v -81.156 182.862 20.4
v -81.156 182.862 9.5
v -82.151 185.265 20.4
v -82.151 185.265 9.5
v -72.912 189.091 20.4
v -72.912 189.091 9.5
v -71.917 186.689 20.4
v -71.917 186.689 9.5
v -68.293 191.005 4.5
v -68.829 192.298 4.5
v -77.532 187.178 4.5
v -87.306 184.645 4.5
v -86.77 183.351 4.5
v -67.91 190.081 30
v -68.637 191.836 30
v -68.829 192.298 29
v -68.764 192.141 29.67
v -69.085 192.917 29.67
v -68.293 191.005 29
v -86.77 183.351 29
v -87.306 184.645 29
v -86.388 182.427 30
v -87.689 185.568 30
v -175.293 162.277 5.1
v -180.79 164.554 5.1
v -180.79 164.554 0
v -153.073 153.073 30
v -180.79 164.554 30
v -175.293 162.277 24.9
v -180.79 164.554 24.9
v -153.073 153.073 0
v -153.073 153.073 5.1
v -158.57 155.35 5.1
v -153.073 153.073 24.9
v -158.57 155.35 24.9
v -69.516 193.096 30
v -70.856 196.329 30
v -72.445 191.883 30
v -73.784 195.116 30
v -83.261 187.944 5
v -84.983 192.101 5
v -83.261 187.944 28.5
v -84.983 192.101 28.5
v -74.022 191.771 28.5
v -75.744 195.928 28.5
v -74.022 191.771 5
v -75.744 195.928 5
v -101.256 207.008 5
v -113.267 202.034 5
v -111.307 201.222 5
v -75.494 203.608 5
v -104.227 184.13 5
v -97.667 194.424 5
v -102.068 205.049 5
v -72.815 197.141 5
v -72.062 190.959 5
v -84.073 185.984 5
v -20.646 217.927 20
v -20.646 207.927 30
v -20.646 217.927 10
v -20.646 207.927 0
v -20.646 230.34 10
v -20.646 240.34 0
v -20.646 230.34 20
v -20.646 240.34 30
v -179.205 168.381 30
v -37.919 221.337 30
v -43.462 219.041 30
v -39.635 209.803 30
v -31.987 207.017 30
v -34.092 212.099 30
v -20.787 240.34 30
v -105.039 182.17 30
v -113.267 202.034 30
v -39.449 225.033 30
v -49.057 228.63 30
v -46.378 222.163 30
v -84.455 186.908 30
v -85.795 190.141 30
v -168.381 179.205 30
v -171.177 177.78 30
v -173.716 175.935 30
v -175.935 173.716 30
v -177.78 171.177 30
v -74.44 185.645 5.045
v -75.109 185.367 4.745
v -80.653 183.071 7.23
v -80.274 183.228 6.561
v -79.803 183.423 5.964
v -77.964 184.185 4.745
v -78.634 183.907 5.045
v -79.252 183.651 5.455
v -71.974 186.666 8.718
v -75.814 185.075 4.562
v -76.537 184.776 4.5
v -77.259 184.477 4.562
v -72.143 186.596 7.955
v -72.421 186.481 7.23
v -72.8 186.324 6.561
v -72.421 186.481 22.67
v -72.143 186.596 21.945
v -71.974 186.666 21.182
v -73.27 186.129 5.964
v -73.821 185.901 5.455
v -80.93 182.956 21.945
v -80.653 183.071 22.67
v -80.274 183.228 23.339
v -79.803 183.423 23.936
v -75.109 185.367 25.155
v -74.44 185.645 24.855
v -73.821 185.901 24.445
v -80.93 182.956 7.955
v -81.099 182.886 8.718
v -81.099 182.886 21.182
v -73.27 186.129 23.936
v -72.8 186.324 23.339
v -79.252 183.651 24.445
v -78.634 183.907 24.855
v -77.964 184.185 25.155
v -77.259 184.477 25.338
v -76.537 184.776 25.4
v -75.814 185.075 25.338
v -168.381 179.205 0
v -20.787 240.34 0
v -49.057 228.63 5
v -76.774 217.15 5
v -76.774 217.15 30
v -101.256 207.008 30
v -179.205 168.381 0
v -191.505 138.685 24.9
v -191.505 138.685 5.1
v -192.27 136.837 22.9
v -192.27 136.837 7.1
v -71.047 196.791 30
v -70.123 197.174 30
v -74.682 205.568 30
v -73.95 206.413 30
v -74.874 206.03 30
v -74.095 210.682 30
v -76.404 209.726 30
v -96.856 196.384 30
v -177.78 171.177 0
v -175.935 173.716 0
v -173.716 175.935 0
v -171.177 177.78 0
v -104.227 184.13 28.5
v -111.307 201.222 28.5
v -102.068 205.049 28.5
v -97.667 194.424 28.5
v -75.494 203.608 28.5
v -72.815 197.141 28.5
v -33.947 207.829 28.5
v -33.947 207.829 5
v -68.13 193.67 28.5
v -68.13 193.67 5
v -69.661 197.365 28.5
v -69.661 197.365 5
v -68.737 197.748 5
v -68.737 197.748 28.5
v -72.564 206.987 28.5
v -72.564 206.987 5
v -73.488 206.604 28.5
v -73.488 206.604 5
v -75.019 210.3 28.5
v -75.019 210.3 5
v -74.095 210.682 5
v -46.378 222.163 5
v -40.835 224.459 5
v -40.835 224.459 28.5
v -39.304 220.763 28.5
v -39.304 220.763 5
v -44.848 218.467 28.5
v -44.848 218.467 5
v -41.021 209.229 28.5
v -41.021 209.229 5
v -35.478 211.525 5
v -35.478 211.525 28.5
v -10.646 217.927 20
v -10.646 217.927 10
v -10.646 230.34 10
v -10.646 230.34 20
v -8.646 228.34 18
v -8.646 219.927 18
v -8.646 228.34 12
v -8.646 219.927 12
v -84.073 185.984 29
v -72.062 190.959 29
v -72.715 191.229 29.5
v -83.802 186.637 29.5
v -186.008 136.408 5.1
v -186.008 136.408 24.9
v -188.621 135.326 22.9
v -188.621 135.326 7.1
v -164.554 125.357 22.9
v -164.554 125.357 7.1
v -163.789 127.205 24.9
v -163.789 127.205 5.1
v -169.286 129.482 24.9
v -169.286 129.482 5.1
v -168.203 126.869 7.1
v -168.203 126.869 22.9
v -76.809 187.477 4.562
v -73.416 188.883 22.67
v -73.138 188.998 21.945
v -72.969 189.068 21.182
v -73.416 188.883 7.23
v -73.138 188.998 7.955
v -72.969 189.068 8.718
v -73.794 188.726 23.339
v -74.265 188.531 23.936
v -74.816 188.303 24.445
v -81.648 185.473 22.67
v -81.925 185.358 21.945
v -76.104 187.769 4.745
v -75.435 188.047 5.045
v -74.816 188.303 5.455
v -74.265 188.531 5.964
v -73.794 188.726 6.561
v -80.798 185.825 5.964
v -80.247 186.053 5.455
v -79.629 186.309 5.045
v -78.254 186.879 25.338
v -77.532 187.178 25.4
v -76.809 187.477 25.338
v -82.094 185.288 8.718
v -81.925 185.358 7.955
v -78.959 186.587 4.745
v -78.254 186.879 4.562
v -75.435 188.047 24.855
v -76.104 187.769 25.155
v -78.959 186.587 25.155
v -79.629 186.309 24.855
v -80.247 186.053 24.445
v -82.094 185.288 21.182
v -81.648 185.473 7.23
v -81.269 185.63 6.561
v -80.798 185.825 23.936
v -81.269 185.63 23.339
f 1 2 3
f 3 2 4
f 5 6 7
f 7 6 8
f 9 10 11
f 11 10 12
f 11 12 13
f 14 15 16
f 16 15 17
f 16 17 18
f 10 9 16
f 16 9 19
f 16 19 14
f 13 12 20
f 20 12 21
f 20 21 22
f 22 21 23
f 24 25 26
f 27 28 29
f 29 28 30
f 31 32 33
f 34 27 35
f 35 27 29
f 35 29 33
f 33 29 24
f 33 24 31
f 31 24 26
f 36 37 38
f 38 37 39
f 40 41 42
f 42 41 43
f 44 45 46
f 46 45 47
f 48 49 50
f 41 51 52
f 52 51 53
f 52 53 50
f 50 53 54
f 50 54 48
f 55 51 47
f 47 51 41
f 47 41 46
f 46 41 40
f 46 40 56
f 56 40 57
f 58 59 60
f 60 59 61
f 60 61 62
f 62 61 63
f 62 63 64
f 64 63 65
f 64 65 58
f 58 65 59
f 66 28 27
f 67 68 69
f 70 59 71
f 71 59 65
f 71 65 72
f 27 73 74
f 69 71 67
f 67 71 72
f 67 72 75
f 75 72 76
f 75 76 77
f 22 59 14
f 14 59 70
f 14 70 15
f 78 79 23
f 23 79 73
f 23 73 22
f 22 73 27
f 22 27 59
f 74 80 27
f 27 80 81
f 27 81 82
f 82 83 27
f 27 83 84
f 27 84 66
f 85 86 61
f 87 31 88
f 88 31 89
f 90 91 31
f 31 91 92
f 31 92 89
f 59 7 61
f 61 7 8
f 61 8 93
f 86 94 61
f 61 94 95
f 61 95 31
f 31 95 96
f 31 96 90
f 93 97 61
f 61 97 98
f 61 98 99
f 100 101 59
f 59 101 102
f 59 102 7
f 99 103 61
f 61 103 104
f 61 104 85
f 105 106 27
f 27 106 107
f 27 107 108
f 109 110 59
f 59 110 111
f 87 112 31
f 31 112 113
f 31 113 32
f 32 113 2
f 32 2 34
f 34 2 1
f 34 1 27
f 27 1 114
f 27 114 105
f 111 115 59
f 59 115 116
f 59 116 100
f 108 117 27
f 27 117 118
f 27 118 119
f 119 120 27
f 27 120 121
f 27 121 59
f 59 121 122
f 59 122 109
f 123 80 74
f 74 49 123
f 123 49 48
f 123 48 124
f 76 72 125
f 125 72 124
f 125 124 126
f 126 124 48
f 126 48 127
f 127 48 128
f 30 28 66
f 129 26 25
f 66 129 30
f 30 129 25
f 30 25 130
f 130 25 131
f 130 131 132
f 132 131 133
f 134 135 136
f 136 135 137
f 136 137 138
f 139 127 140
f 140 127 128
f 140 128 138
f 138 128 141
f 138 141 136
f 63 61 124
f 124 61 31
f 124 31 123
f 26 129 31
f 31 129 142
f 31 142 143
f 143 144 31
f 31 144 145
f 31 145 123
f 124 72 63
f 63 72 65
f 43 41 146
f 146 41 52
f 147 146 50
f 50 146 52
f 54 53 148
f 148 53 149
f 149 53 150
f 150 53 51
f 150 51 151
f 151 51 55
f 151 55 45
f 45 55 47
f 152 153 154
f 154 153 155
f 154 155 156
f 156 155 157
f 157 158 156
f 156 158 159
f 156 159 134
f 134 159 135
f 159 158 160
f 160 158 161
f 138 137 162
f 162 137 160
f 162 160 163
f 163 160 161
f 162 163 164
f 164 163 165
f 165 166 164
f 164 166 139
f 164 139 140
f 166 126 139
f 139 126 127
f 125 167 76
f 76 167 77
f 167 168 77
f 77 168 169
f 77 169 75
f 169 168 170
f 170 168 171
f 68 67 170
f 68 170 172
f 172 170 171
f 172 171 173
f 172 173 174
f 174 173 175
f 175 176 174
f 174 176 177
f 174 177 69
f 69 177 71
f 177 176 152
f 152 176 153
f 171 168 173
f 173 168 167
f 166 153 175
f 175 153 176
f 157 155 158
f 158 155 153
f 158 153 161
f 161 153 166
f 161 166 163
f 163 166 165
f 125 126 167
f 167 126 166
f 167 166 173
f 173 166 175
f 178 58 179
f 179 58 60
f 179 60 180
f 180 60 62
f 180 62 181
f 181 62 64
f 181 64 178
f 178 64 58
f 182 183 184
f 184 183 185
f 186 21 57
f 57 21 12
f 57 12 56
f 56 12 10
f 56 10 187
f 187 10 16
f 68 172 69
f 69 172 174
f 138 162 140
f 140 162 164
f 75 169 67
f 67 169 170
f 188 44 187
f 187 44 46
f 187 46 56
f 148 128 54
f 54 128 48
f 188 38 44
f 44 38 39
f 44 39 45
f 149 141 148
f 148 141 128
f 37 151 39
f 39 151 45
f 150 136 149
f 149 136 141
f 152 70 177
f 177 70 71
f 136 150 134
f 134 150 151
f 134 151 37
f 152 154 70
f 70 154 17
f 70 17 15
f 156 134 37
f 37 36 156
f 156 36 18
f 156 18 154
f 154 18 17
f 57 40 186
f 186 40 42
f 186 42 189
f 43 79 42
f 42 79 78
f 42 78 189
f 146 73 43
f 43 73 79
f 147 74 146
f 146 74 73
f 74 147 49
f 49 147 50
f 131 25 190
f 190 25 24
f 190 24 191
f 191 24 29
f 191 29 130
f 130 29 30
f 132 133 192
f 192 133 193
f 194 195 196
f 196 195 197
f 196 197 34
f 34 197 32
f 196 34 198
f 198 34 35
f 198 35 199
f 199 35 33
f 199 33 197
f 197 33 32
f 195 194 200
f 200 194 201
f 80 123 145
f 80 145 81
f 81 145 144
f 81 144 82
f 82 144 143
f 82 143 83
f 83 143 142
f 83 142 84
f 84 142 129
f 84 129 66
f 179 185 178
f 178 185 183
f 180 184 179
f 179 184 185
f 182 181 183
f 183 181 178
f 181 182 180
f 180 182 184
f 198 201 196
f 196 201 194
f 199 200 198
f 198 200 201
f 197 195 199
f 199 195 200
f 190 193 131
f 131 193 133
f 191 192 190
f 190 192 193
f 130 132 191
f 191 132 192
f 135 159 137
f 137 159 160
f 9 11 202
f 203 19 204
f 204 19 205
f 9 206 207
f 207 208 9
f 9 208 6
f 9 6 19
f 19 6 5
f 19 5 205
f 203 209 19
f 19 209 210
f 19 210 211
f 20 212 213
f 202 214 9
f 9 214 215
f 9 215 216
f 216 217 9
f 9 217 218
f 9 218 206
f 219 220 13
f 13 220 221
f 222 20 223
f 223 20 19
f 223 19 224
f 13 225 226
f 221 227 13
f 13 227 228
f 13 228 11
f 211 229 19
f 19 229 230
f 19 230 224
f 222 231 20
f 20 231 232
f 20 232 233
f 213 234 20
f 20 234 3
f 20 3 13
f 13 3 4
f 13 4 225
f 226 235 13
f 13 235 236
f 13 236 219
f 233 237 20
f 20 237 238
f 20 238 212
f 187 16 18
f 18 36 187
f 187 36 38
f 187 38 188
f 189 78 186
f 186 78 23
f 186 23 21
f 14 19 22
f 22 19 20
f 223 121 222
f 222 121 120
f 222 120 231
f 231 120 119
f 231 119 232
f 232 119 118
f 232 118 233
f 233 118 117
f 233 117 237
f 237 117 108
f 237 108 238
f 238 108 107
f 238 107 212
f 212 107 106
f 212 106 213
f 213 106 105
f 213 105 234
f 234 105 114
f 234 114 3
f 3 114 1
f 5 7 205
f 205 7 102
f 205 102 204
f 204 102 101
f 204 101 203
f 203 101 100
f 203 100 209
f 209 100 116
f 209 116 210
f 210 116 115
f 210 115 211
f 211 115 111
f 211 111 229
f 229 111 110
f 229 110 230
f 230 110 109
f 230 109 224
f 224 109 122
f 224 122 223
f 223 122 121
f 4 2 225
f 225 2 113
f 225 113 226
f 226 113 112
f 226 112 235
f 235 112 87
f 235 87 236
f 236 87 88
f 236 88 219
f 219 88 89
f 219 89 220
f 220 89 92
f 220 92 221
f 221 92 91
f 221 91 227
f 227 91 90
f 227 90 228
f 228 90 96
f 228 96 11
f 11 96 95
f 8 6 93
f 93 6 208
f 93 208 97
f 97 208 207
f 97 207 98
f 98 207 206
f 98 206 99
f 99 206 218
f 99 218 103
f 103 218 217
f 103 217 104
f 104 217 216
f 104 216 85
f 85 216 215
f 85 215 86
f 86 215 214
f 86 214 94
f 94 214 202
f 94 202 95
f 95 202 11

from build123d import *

# Parameters (mm, degrees)
BOSS_EXTRUDE1_DEPTH = 30
SKETCH4_W           = 30
SKETCH4_H           = 11.480502971
BOSS_EXTRUDE2_DEPTH = 50
CUT_EXTRUDE1_DEPTH  = 5
CUT_EXTRUDE3_DEPTH  = 6.480502971
FILLET1_R           = 10
CHAMFER3_SIZE       = 22.5
CHAMFER3_SIZE2      = 8.610377228
CHAMFER1_SIZE       = 15
CHAMFER1_SIZE2      = 20.645728807
CHAMFER2_SIZE2      = 20.645728807
CHAMFER2_SIZE       = 15
CUT_EXTRUDE4_DEPTH  = 25
CUT_EXTRUDE5_DEPTH  = 25
SKETCH9_W           = 20.645728807
SKETCH9_H           = 30
CUT_EXTRUDE6_DEPTH  = 40
SKETCH10_W          = 10
SKETCH10_H          = 12.413129657
BOSS_EXTRUDE3_DEPTH = 12
SKETCH11_W          = 20
SKETCH11_H          = 25.5
CUT_EXTRUDE7_DEPTH  = 4
SKETCH12_W          = 30
SKETCH12_H          = 31
CUT_EXTRUDE8_DEPTH  = 2
CHAMFER4_SIZE       = 1.5
CUT_EXTRUDE9_DEPTH  = 30
SKETCH14_W          = 5.95
SKETCH14_H          = 19.8
BOSS_EXTRUDE4_DEPTH = 30
FILLET2_R           = 20
CHAMFER5_SIZE       = 2
CHAMFER6_SIZE       = 1.5
BOSS_EXTRUDE5_DEPTH = 25.5
SKETCH16_W          = 4.6
SKETCH16_H          = 2.6
BOSS_EXTRUDE6_DEPTH = 10
CHAMFER7_SIZE       = 1
FILLET3_R           = 5


# Some blends are built 0.0001 mm under size
with BuildPart() as part:
    # Sketch1 → Boss-Extrude1 (new body)
    with BuildSketch(Plane.XY):
        Polygon((0, 216.478440058), (-153.073372946, 153.073372946), (-216.478440058, 0), (-244.194826034, 0), (-244.194826034, 11.480502971), (-176.034378888, 176.034378888), (0, 248.950206067), align=None)
    extrude(amount=BOSS_EXTRUDE1_DEPTH)

    # Sketch4 → Boss-Extrude2 (add)
    with BuildSketch(Plane.ZY.offset(244.194826034)):
        with Locations((15, 5.740251485)):
            Rectangle(SKETCH4_W, SKETCH4_H)
    extrude(amount=BOSS_EXTRUDE2_DEPTH)

    # Sketch5 → Cut-Extrude1 (cut)
    with BuildSketch(Plane(origin=(0, 11.480502971, 0), x_dir=(1, 0, 0), z_dir=(0, 1, 0))):
        with BuildLine():
            Line((-281.694826034, -6), (-256.694826034, -6))
            ThreePointArc((-256.694826034, -6), (-247.694826034, -15), (-256.694826034, -24))
            Line((-256.694826034, -24), (-281.694826034, -24))
            ThreePointArc((-281.694826034, -24), (-290.694826034, -15), (-281.694826034, -6))
        make_face()
    extrude(amount=-CUT_EXTRUDE1_DEPTH, mode=Mode.SUBTRACT)

    # Sketch7 → Cut-Extrude3 (cut)
    with BuildSketch(Plane(origin=(0, 6.480502971, 0), x_dir=(1, 0, 0), z_dir=(0, 1, 0))):
        with BuildLine():
            Line((-256.694826034, -11.5), (-281.694826034, -11.5))
            ThreePointArc((-281.694826034, -11.5), (-285.194826034, -15), (-281.694826034, -18.5))
            Line((-281.694826034, -18.5), (-256.694826034, -18.5))
            ThreePointArc((-256.694826034, -18.5), (-253.194826034, -15), (-256.694826034, -11.5))
        make_face()
    extrude(amount=-CUT_EXTRUDE3_DEPTH, mode=Mode.SUBTRACT)

    # Fillet1
    fillet1_edges = [part.edges().sort_by_distance(p)[0] for p in [
        (-294.194826034, 5.740251485, 0),
        (-294.194826034, 5.740251485, 30),
    ]]
    fillet(fillet1_edges, radius=FILLET1_R)

    # Chamfer3
    chamfer3_edges = [part.edges().sort_by_distance(p)[0] for p in [
        (0, 248.950206067, 15),
    ]]
    chamfer3_side = [part.faces().sort_by_distance(p)[0] for p in [
        (-88.017189444, 212.492292478, 15),
    ]]
    chamfer(chamfer3_edges, length=CHAMFER3_SIZE, length2=CHAMFER3_SIZE2, reference=chamfer3_side[0])

    # Chamfer1
    chamfer1_edges = [part.edges().sort_by_distance(p)[0] for p in [
        (0, 228.409134449, 0),
    ]]
    chamfer1_side = [part.faces().sort_by_distance(p)[0] for p in [
        (0, 228.409134449, 15),
    ]]
    chamfer(chamfer1_edges, length=CHAMFER1_SIZE, length2=CHAMFER1_SIZE2, reference=chamfer1_side[0])

    # Chamfer2
    chamfer2_edges = [part.edges().sort_by_distance(p)[0] for p in [
        (0, 228.409134449, 30),
    ]]
    chamfer2_side = [part.faces().sort_by_distance(p)[0] for p in [
        (0, 228.409134449, 29.7),
    ]]
    chamfer(chamfer2_edges, length=CHAMFER2_SIZE - 0.0001, length2=CHAMFER2_SIZE2 - 0.0001, reference=chamfer2_side[0])  # a hair under: the kernel refuses the full size

    # Sketch3 → Cut-Extrude4 (cut)
    with BuildSketch(Plane.XY.offset(30)):
        Polygon((-186.689323664, 71.91728881), (-182.86248934, 81.156084136), (-192.101284666, 84.982918459), (-184.129988769, 104.227329121), (-202.60757942, 111.880997769), (-206.434413743, 102.642202444), (-194.423979821, 97.667317823), (-203.608382197, 75.494209043), (-197.14122547, 72.815425016), (-195.928118989, 75.744123134), align=None)
        Polygon((-81.156084136, 182.86248934), (-71.91728881, 186.689323664), (-75.744123134, 195.928118989), (-72.815425016, 197.14122547), (-75.494209043, 203.608382197), (-97.667317823, 194.423979821), (-102.642202444, 206.434413743), (-111.880997769, 202.60757942), (-106.906113148, 190.597145497), (-104.227329121, 184.129988769), (-84.982918459, 192.101284666), align=None)
    extrude(amount=-CUT_EXTRUDE4_DEPTH, mode=Mode.SUBTRACT)

    # Sketch8 → Cut-Extrude5 (cut)
    with BuildSketch(Plane.XY.offset(30)):
        Polygon((-68.130369257, 193.669878104), (-69.661102986, 197.365396234), (-68.737223454, 197.748079667), (-72.564057777, 206.986874992), (-73.48793731, 206.604191559), (-75.018671039, 210.29970969), (-74.094791507, 210.682393122), (-76.773575533, 217.149549849), (-49.057189558, 228.63005282), (-46.378405531, 222.162896093), (-40.835128336, 224.458996687), (-39.304394607, 220.763478557), (-44.847671802, 218.467377963), (-41.020837478, 209.228582638), (-35.477560283, 211.524683232), (-33.946826554, 207.829165102), align=None)
    extrude(amount=-CUT_EXTRUDE5_DEPTH, mode=Mode.SUBTRACT)

    # Sketch9 → Cut-Extrude6 (cut)
    with BuildSketch(Plane(origin=(0, 240.339828839, 0), x_dir=(1, 0, 0), z_dir=(0, 1, 0))):
        with Locations((-10.322864404, -15)):
            Rectangle(SKETCH9_W, SKETCH9_H)
    extrude(amount=-CUT_EXTRUDE6_DEPTH, mode=Mode.SUBTRACT)


with BuildPart() as cut_extrude6_kept_piece:
    # of the separate pieces the step leaves, the one the design keeps (cut_extrude6_pieces_kept)
    add(part.part.solids().sort_by_distance((-20.787289482, 240.339828839, 30))[0])

    # Sketch10 → Boss-Extrude3 (add)
    with BuildSketch(Plane(origin=(-20.645728807, 0, 0), x_dir=(0, 0, -1), z_dir=(1, 0, 0))):
        with Locations((-15, 224.13326401)):
            Rectangle(SKETCH10_W, SKETCH10_H)
    extrude(amount=BOSS_EXTRUDE3_DEPTH)

    # Sketch11 → Cut-Extrude7 (cut)
    with BuildSketch(Plane(origin=(-76.536686473, 184.775906502, 0), x_dir=(0.9238795325112865, 0.38268343236509045, 0), z_dir=(0.38268343236509045, -0.9238795325112865, 0))):
        with Locations((0, 17.25)):
            Rectangle(SKETCH11_W, SKETCH11_H)
    extrude(amount=-CUT_EXTRUDE7_DEPTH, mode=Mode.SUBTRACT)

    # Sketch12 → Cut-Extrude8 (cut)
    with BuildSketch(Plane(origin=(-184.775906502, 76.536686473, 0), x_dir=(0, 0, -1), z_dir=(0.9238795325112872, -0.38268343236508917, 0))):
        with Locations((-15, 0.5)):
            Rectangle(SKETCH12_W, SKETCH12_H)
    extrude(amount=-CUT_EXTRUDE8_DEPTH, mode=Mode.SUBTRACT)

    # Chamfer4
    # the kernel refuses this chamfer: 1.5 mm, written as the material it takes off along each edge
    with BuildSketch(Plane(origin=(-111.880997769, 202.60757942, 33.857524482), x_dir=(-0.9340524457212702, -0.35713586860201213, 0), z_dir=(0, 0, -1)), Plane(origin=(-206.434413743, 102.642202444, 33.857524482), x_dir=(-0.4079416238599721, -0.9130080128468145, 0), z_dir=(0, 0, -1)), Plane(origin=(-82.686817865, 186.55800747, 5), x_dir=(-0.9130080128468199, -0.40794162385996025, 0), z_dir=(0, 0, 1)), Plane(origin=(-184.710248405, 81.921451, 33.857524482), x_dir=(0.40794162385996363, 0.9130080128468183, 0), z_dir=(0, 0, -1)), Plane(origin=(-188.537082729, 72.682655675, 5), x_dir=(-0.3571358686019868, -0.9340524457212799, 0), z_dir=(0, 0, 1))) as chamfer4_piece_1:
        Polygon((CHAMFER4_SIZE * 0.999621916911, -CHAMFER4_SIZE * 0.0274958766106), (-CHAMFER4_SIZE * 0.0274958766106, -CHAMFER4_SIZE * 0.999621916911), (0, 0), align=None)
    extrude(amount=28.857524482, mode=Mode.SUBTRACT)
    with BuildSketch(Plane(origin=(-102.642202444, 206.434413743, 33.857524482), x_dir=(0.913008012846816, 0.4079416238599687, 0), z_dir=(0, 0, -1)), Plane(origin=(-202.60757942, 111.880997769, 33.857524482), x_dir=(0.357135868602009, 0.9340524457212713, 0), z_dir=(0, 0, -1)), Plane(origin=(-73.44802254, 190.384841794, 33.857524482), x_dir=(-0.40794162385996025, 0.9130080128468199, 0), z_dir=(0, 0, -1))) as chamfer4_piece_2:
        Polygon((CHAMFER4_SIZE * 0.999621916911, CHAMFER4_SIZE * 0.0274958766106), (-CHAMFER4_SIZE * 0.0274958766106, CHAMFER4_SIZE * 0.999621916911), (0, 0), align=None)
    extrude(amount=28.857524482, mode=Mode.SUBTRACT)
    with BuildSketch(Plane(origin=(-86.459129168, 195.665172581, 30), x_dir=(-0.9235302292840447, -0.38253874623098655, 0.027495876610586726), z_dir=(0.3826834323650907, -0.9238795325112864, 0)), Plane(origin=(-71.971811831, 186.820953879, 30), x_dir=(0.9235302292840449, 0.38253874623098627, 0.027495876610586726), z_dir=(-0.3826834323650905, 0.9238795325112865, 0))) as chamfer4_piece_3:
        Polygon((CHAMFER4_SIZE * 0.999621916911, CHAMFER4_SIZE * 0.0274958766106), (-CHAMFER4_SIZE * 0.0274958766106, CHAMFER4_SIZE * 0.999621916911), (0, 0), align=None)
    extrude(amount=13.715048964, mode=Mode.SUBTRACT)
    with BuildSketch(Plane(origin=(-79.308011049, 194.45190828, 30), x_dir=(0.3825387462309865, -0.9235302292840447, 0.027495876610586726), z_dir=(0.9238795325112864, 0.3826834323650907, 0)), Plane(origin=(-197.14122547, 72.815425016, 30), x_dir=(0.9235302292840416, -0.3825387462309942, 0.02749587661058663), z_dir=(0.38268343236509833, 0.9238795325112832, 0))) as chamfer4_piece_4:
        Polygon((CHAMFER4_SIZE * 0.999621916911, CHAMFER4_SIZE * 0.0274958766106), (-CHAMFER4_SIZE * 0.0274958766106, CHAMFER4_SIZE * 0.999621916911), (0, 0), align=None)
    extrude(amount=7.027524482, mode=Mode.SUBTRACT)
    with BuildSketch(Plane(origin=(-72.815425016, 197.14122547, 30), x_dir=(0.923530229284045, 0.38253874623098577, 0.027495876610586726), z_dir=(-0.3826834323650899, 0.9238795325112867, 0)), Plane(origin=(-203.608382197, 75.494209043, 30), x_dir=(-0.3825387462309937, -0.9235302292840417, 0.027495876610586955), z_dir=(0.9238795325112835, -0.382683432365098, 0))) as chamfer4_piece_5:
        Polygon((CHAMFER4_SIZE * 0.999621916911, CHAMFER4_SIZE * 0.0274958766106), (-CHAMFER4_SIZE * 0.0274958766106, CHAMFER4_SIZE * 0.999621916911), (0, 0), align=None)
    extrude(amount=7, mode=Mode.SUBTRACT)
    with BuildSketch(Plane(origin=(-75.494209043, 203.608382197, 30), x_dir=(-0.38253874623098766, 0.9235302292840444, 0.027495876610586726), z_dir=(-0.923879532511286, -0.3826834323650918, 0)), Plane(origin=(-192.947769111, 101.231205738, 30), x_dir=(-0.9235302292840468, 0.38253874623098166, 0.027495876610586726), z_dir=(-0.3826834323650858, -0.9238795325112884, 0))) as chamfer4_piece_6:
        Polygon((CHAMFER4_SIZE * 0.999621916911, CHAMFER4_SIZE * 0.0274958766106), (-CHAMFER4_SIZE * 0.0274958766106, CHAMFER4_SIZE * 0.999621916911), (0, 0), align=None)
    extrude(amount=27.857524482, mode=Mode.SUBTRACT)
    with BuildSketch(Plane(origin=(-96.191107114, 190.860091906, 30), x_dir=(0.9235302292840402, 0.3825387462309975, 0.027495876610586768), z_dir=(-0.3826834323651017, 0.9238795325112819, 0))) as chamfer4_piece_7:
        Polygon((CHAMFER4_SIZE * 0.999621916911, CHAMFER4_SIZE * 0.0274958766106), (-CHAMFER4_SIZE * 0.0274958766106, CHAMFER4_SIZE * 0.999621916911), (0, 0), align=None)
    extrude(amount=20.715048964, mode=Mode.SUBTRACT)
    with BuildSketch(Plane(origin=(-104.227329121, 184.129988769, 30), x_dir=(0.02540287762893928, 0.010522216437210534, -0.9996219169112979), z_dir=(-0.38268343236508334, 0.9238795325112895, 0)), Plane(origin=(-184.129988769, 104.227329121, 30), x_dir=(0.38253874623098305, 0.9235302292840462, 0.027495876610586726), z_dir=(-0.9238795325112878, 0.3826834323650872, 0))) as chamfer4_piece_8:
        Polygon((CHAMFER4_SIZE * 0.999621916911, CHAMFER4_SIZE * 0.0274958766106), (-CHAMFER4_SIZE * 0.0274958766105, CHAMFER4_SIZE * 0.999621916911), (0, 0), align=None)
    extrude(amount=23.857524482, mode=Mode.SUBTRACT)
    with BuildSketch(Plane(origin=(-104.227329121, 184.129988769, 30), x_dir=(0.38253874623098766, -0.9235302292840444, 0.027495876610586726), z_dir=(0.923879532511286, 0.3826834323650918, 0)), Plane(origin=(-193.577495375, 81.419030544, 30), x_dir=(0.9235302292840456, -0.38253874623098455, 0.027495876610586726), z_dir=(0.3826834323650887, 0.9238795325112873, 0))) as chamfer4_piece_9:
        Polygon((CHAMFER4_SIZE * 0.999621916911, CHAMFER4_SIZE * 0.0274958766106), (-CHAMFER4_SIZE * 0.0274958766106, CHAMFER4_SIZE * 0.999621916911), (0, 0), align=None)
    extrude(amount=24.687524482, mode=Mode.SUBTRACT)
    with BuildSketch(Plane(origin=(-209.998301658, 104.118413153, 30), x_dir=(0.010522216437226423, 0.025402877628977135, -0.9996219169112968), z_dir=(0.9238795325112867, -0.38268343236508984, 0))) as chamfer4_piece_10:
        Polygon((CHAMFER4_SIZE * 0.999621916911, -CHAMFER4_SIZE * 0.0274958766106), (-CHAMFER4_SIZE * 0.0274958766106, -CHAMFER4_SIZE * 0.999621916911), (0, 0), align=None)
    extrude(amount=20.715048964, mode=Mode.SUBTRACT)
    with BuildSketch(Plane(origin=(-199.492006904, 77.220333843, 30), x_dir=(-0.38253874623098383, -0.9235302292840458, 0.027495876610586722), z_dir=(0.9238795325112875, -0.38268343236508806, 0)), Plane(origin=(-181.14636049, 80.445240291, 30), x_dir=(0.38253874623098577, 0.923530229284045, 0.027495876610586726), z_dir=(-0.9238795325112867, 0.38268343236508995, 0))) as chamfer4_piece_11:
        Polygon((CHAMFER4_SIZE * 0.999621916911, CHAMFER4_SIZE * 0.0274958766106), (-CHAMFER4_SIZE * 0.0274958766106, CHAMFER4_SIZE * 0.999621916911), (0, 0), align=None)
    extrude(amount=15.715048964, mode=Mode.SUBTRACT)
    with BuildSketch(Plane(origin=(-33.946826554, 207.829165102, 30), x_dir=(0.38253874623098433, -0.9235302292840456, 0.027495876610586674), z_dir=(-0.9238795325112873, -0.38268343236508856, 0))) as chamfer4_piece_12:
        Polygon((CHAMFER4_SIZE * 0.999621916911, -CHAMFER4_SIZE * 0.0274958766106), (-CHAMFER4_SIZE * 0.0274958766106, -CHAMFER4_SIZE * 0.999621916911), (0, 0), align=None)
    extrude(amount=37, mode=Mode.SUBTRACT)
    with BuildSketch(Plane(origin=(-35.477560283, 211.524683232, 30), x_dir=(0.9235302292840445, 0.38253874623098716, 0.02749587661058684), z_dir=(0.3826834323650914, -0.9238795325112861, 0)), Plane(origin=(-40.835128336, 224.458996687, 30), x_dir=(0.923530229284045, 0.3825387462309857, 0.027495876610586608), z_dir=(0.3826834323650899, -0.9238795325112867, 0)), Plane(origin=(-73.48793731, 206.604191559, 30), x_dir=(-0.9235302292840456, -0.38253874623098416, 0.027495876610586722), z_dir=(-0.3826834323650884, 0.9238795325112874, 0)), Plane(origin=(-68.130369257, 193.669878104, 30), x_dir=(-0.9235302292840445, -0.38253874623098727, 0.027495876610586726), z_dir=(-0.3826834323650914, 0.9238795325112861, 0))) as chamfer4_piece_13:
        Polygon((CHAMFER4_SIZE * 0.999621916911, -CHAMFER4_SIZE * 0.0274958766106), (-CHAMFER4_SIZE * 0.0274958766106, -CHAMFER4_SIZE * 0.999621916911), (0, 0), align=None)
    extrude(amount=4, mode=Mode.SUBTRACT)
    with BuildSketch(Plane(origin=(-46.323882511, 222.031265878, 30), x_dir=(0.9235302292840456, 0.38253874623098433, 0.027495876610586726), z_dir=(0.3826834323650885, -0.9238795325112873, 0))) as chamfer4_piece_14:
        Polygon((CHAMFER4_SIZE * 0.999621916911, -CHAMFER4_SIZE * 0.0274958766106), (-CHAMFER4_SIZE * 0.0274958766106, -CHAMFER4_SIZE * 0.999621916911), (0, 0), align=None)
    extrude(amount=17.715048964, mode=Mode.SUBTRACT)
    with BuildSketch(Plane(origin=(-71.339214307, 193.577337555, 30), x_dir=(0.923530229284045, 0.38253874623098577, 0.027495876610586726), z_dir=(-0.3826834323650899, 0.9238795325112867, 0))) as chamfer4_piece_15a_section:
        Polygon((CHAMFER4_SIZE * 0.999621916911, CHAMFER4_SIZE * 0.0274958766106), (-CHAMFER4_SIZE * 0.0274958766106, CHAMFER4_SIZE * 0.999621916911), (0, 0), align=None)
    chamfer4_piece_15a = extrude(amount=10.857524482, mode=Mode.PRIVATE)
    chamfer4_piece_15a = split(chamfer4_piece_15a, bisect_by=Plane(origin=(-72.358390643, 197.330535305, 29.50530956), z_dir=(0.3826834323650907, -0.9238795325112864, 0)), keep=Keep.TOP, mode=Mode.PRIVATE)
    with BuildSketch(Plane(origin=(-79.308011049, 194.45190828, 30), x_dir=(0.3825387462309865, -0.9235302292840447, 0.027495876610586726), z_dir=(0.9238795325112864, 0.3826834323650907, 0))) as chamfer4_piece_15b_section:
        Polygon((CHAMFER4_SIZE * 0.999621916911, CHAMFER4_SIZE * 0.0274958766106), (-CHAMFER4_SIZE * 0.0274958766106, CHAMFER4_SIZE * 0.999621916911), (0, 0), align=None)
    chamfer4_piece_15b = extrude(amount=10.885048964, mode=Mode.PRIVATE)
    chamfer4_piece_15b = split(chamfer4_piece_15b, bisect_by=Plane(origin=(-72.62611518, 196.684191097, 29.50530956), z_dir=(0.9238795325112867, 0.3826834323650899, 0)), keep=Keep.TOP, mode=Mode.PRIVATE)
    chamfer4_piece_15 = chamfer4_piece_15a & chamfer4_piece_15b
    add(chamfer4_piece_15, mode=Mode.SUBTRACT)
    with BuildSketch(Plane(origin=(-71.930321128, 205.084592907, 30), x_dir=(-0.38253874623098766, 0.9235302292840444, 0.027495876610586726), z_dir=(-0.923879532511286, -0.3826834323650918, 0))) as chamfer4_piece_16a_section:
        Polygon((CHAMFER4_SIZE * 0.999621916911, CHAMFER4_SIZE * 0.0274958766106), (-CHAMFER4_SIZE * 0.0274958766106, CHAMFER4_SIZE * 0.999621916911), (0, 0), align=None)
    chamfer4_piece_16a = extrude(amount=31.715048964, mode=Mode.PRIVATE)
    chamfer4_piece_16a = split(chamfer4_piece_16a, bisect_by=Plane(origin=(-75.683518878, 204.06541657, 29.50530956), z_dir=(0.9238795325112867, 0.3826834323650899, 0)), keep=Keep.TOP, mode=Mode.PRIVATE)
    with BuildSketch(Plane(origin=(-72.815425016, 197.14122547, 30), x_dir=(0.923530229284045, 0.38253874623098577, 0.027495876610586726), z_dir=(-0.3826834323650899, 0.9238795325112867, 0))) as chamfer4_piece_16b_section:
        Polygon((CHAMFER4_SIZE * 0.999621916911, CHAMFER4_SIZE * 0.0274958766106), (-CHAMFER4_SIZE * 0.0274958766106, CHAMFER4_SIZE * 0.999621916911), (0, 0), align=None)
    chamfer4_piece_16b = extrude(amount=10.857524482, mode=Mode.PRIVATE)
    chamfer4_piece_16b = split(chamfer4_piece_16b, bisect_by=Plane(origin=(-75.03717467, 203.797692033, 29.50530956), z_dir=(-0.3826834323650918, 0.923879532511286, 0)), keep=Keep.TOP, mode=Mode.PRIVATE)
    chamfer4_piece_16 = chamfer4_piece_16a & chamfer4_piece_16b
    add(chamfer4_piece_16, mode=Mode.SUBTRACT)
    with BuildSketch(Plane(origin=(-102.751118412, 180.566100854, 30), x_dir=(0.02540287762897721, 0.010522216437226244, -0.9996219169112968), z_dir=(-0.38268343236508334, 0.9238795325112895, 0))) as chamfer4_piece_17a_section:
        Polygon((CHAMFER4_SIZE * 0.999621916911, CHAMFER4_SIZE * 0.0274958766106), (-CHAMFER4_SIZE * 0.0274958766106, CHAMFER4_SIZE * 0.999621916911), (0, 0), align=None)
    chamfer4_piece_17a = extrude(amount=27.715048964, mode=Mode.PRIVATE)
    chamfer4_piece_17a = split(chamfer4_piece_17a, bisect_by=Plane(origin=(-104.684363494, 183.940678934, 29.50530956), z_dir=(0.3826834323650918, -0.923879532511286, 0)), keep=Keep.TOP, mode=Mode.PRIVATE)
    with BuildSketch(Plane(origin=(-107.791217036, 182.65377806, 30), x_dir=(0.38253874623098766, -0.9235302292840444, 0.027495876610586726), z_dir=(0.923879532511286, 0.3826834323650918, 0))) as chamfer4_piece_17b_section:
        Polygon((CHAMFER4_SIZE * 0.999621916911, CHAMFER4_SIZE * 0.0274958766106), (-CHAMFER4_SIZE * 0.0274958766106, CHAMFER4_SIZE * 0.999621916911), (0, 0), align=None)
    chamfer4_piece_17b = extrude(amount=28.545048964, mode=Mode.PRIVATE)
    chamfer4_piece_17b = split(chamfer4_piece_17b, bisect_by=Plane(origin=(-104.038019286, 183.672954397, 29.50530956), z_dir=(-0.9238795325112906, -0.3826834323650806, 0)), keep=Keep.TOP, mode=Mode.PRIVATE)
    chamfer4_piece_17 = chamfer4_piece_17a & chamfer4_piece_17b
    add(chamfer4_piece_17, mode=Mode.SUBTRACT)
    with BuildSketch(Plane(origin=(-180.566100854, 102.751118412, 30), x_dir=(0.38253874623098305, 0.9235302292840462, 0.027495876610586726), z_dir=(-0.9238795325112878, 0.3826834323650872, 0))) as chamfer4_piece_18a_section:
        Polygon((CHAMFER4_SIZE * 0.999621916911, CHAMFER4_SIZE * 0.0274958766106), (-CHAMFER4_SIZE * 0.0274958766106, CHAMFER4_SIZE * 0.999621916911), (0, 0), align=None)
    chamfer4_piece_18a = extrude(amount=27.715048964, mode=Mode.PRIVATE)
    chamfer4_piece_18a = split(chamfer4_piece_18a, bisect_by=Plane(origin=(-183.940678934, 104.684363494, 29.50530956), z_dir=(0.9238795325112873, -0.3826834323650887, 0)), keep=Keep.TOP, mode=Mode.PRIVATE)
    with BuildSketch(Plane(origin=(-193.577495375, 81.419030544, 30), x_dir=(0.9235302292840456, -0.38253874623098455, 0.027495876610586726), z_dir=(0.3826834323650887, 0.9238795325112873, 0))) as chamfer4_piece_18b_section:
        Polygon((CHAMFER4_SIZE * 0.999621916911, CHAMFER4_SIZE * 0.0274958766106), (-CHAMFER4_SIZE * 0.0274958766106, CHAMFER4_SIZE * 0.999621916911), (0, 0), align=None)
    chamfer4_piece_18b = extrude(amount=28.545048964, mode=Mode.PRIVATE)
    chamfer4_piece_18b = split(chamfer4_piece_18b, bisect_by=Plane(origin=(-183.672954397, 104.038019286, 29.50530956), z_dir=(0.3826834323650872, 0.9238795325112878, 0)), keep=Keep.TOP, mode=Mode.PRIVATE)
    chamfer4_piece_18 = chamfer4_piece_18a & chamfer4_piece_18b
    add(chamfer4_piece_18, mode=Mode.SUBTRACT)
    with BuildSketch(Plane(origin=(-207.172270112, 76.970419752, 30), x_dir=(-0.3825387462309937, -0.9235302292840417, 0.027495876610586955), z_dir=(0.9238795325112835, -0.382683432365098, 0))) as chamfer4_piece_19a_section:
        Polygon((CHAMFER4_SIZE * 0.999621916911, CHAMFER4_SIZE * 0.0274958766106), (-CHAMFER4_SIZE * 0.0274958766106, CHAMFER4_SIZE * 0.999621916911), (0, 0), align=None)
    chamfer4_piece_19a = extrude(amount=10.857524482, mode=Mode.PRIVATE)
    chamfer4_piece_19a = split(chamfer4_piece_19a, bisect_by=Plane(origin=(-203.797692033, 75.03717467, 29.50530956), z_dir=(-0.9238795325112884, 0.3826834323650858, 0)), keep=Keep.TOP, mode=Mode.PRIVATE)
    with BuildSketch(Plane(origin=(-192.947769111, 101.231205738, 30), x_dir=(-0.9235302292840468, 0.38253874623098166, 0.027495876610586726), z_dir=(-0.3826834323650858, -0.9238795325112884, 0))) as chamfer4_piece_19b_section:
        Polygon((CHAMFER4_SIZE * 0.999621916911, CHAMFER4_SIZE * 0.0274958766106), (-CHAMFER4_SIZE * 0.0274958766106, CHAMFER4_SIZE * 0.999621916911), (0, 0), align=None)
    chamfer4_piece_19b = extrude(amount=31.715048964, mode=Mode.PRIVATE)
    chamfer4_piece_19b = split(chamfer4_piece_19b, bisect_by=Plane(origin=(-204.06541657, 75.683518878, 29.50530956), z_dir=(-0.38268343236509805, -0.9238795325112835, 0)), keep=Keep.TOP, mode=Mode.PRIVATE)
    chamfer4_piece_19 = chamfer4_piece_19a & chamfer4_piece_19b
    add(chamfer4_piece_19, mode=Mode.SUBTRACT)
    with BuildSketch(Plane(origin=(-198.617436179, 69.251537101, 30), x_dir=(0.9235302292840416, -0.3825387462309942, 0.02749587661058663), z_dir=(0.38268343236509833, 0.9238795325112832, 0))) as chamfer4_piece_20a_section:
        Polygon((CHAMFER4_SIZE * 0.999621916911, CHAMFER4_SIZE * 0.0274958766106), (-CHAMFER4_SIZE * 0.0274958766106, CHAMFER4_SIZE * 0.999621916911), (0, 0), align=None)
    chamfer4_piece_20a = extrude(amount=10.885048964, mode=Mode.PRIVATE)
    chamfer4_piece_20a = split(chamfer4_piece_20a, bisect_by=Plane(origin=(-196.684191097, 72.62611518, 29.50530956), z_dir=(-0.38268343236509805, -0.9238795325112835, 0)), keep=Keep.TOP, mode=Mode.PRIVATE)
    with BuildSketch(Plane(origin=(-203.608382197, 75.494209043, 30), x_dir=(-0.3825387462309937, -0.9235302292840417, 0.027495876610586955), z_dir=(0.9238795325112835, -0.382683432365098, 0))) as chamfer4_piece_20b_section:
        Polygon((CHAMFER4_SIZE * 0.999621916911, CHAMFER4_SIZE * 0.0274958766106), (-CHAMFER4_SIZE * 0.0274958766106, CHAMFER4_SIZE * 0.999621916911), (0, 0), align=None)
    chamfer4_piece_20b = extrude(amount=10.857524482, mode=Mode.PRIVATE)
    chamfer4_piece_20b = split(chamfer4_piece_20b, bisect_by=Plane(origin=(-197.330535305, 72.358390643, 29.50530956), z_dir=(0.9238795325112832, -0.38268343236509833, 0)), keep=Keep.TOP, mode=Mode.PRIVATE)
    chamfer4_piece_20 = chamfer4_piece_20a & chamfer4_piece_20b
    add(chamfer4_piece_20, mode=Mode.SUBTRACT)
    with BuildSketch(Plane(origin=(-35.477560283, 211.524683232, 30), x_dir=(0.9235302292840445, 0.38253874623098716, 0.02749587661058684), z_dir=(0.3826834323650914, -0.9238795325112861, 0))) as chamfer4_piece_21a_section:
        Polygon((CHAMFER4_SIZE * 0.999621916911, -CHAMFER4_SIZE * 0.0274958766106), (-CHAMFER4_SIZE * 0.0274958766106, -CHAMFER4_SIZE * 0.999621916911), (0, 0), align=None)
    chamfer4_piece_21a = extrude(amount=7.857524482, mode=Mode.PRIVATE)
    chamfer4_piece_21a = split(chamfer4_piece_21a, bisect_by=Plane(origin=(-33.489792181, 208.018474937, 29.50530956), z_dir=(0.38268343236508856, -0.9238795325112873, 0)), keep=Keep.TOP, mode=Mode.PRIVATE)
    with BuildSketch(Plane(origin=(-30.382938639, 209.305375811, 30), x_dir=(0.3825387462309844, -0.9235302292840456, 0.027495876610586726), z_dir=(-0.9238795325112873, -0.38268343236508856, 0))) as chamfer4_piece_21b_section:
        Polygon((CHAMFER4_SIZE * 0.999621916911, -CHAMFER4_SIZE * 0.0274958766106), (-CHAMFER4_SIZE * 0.0274958766106, -CHAMFER4_SIZE * 0.999621916911), (0, 0), align=None)
    chamfer4_piece_21b = extrude(amount=40.857524482, mode=Mode.PRIVATE)
    chamfer4_piece_21b = split(chamfer4_piece_21b, bisect_by=Plane(origin=(-33.757516718, 207.372130729, 29.50530956), z_dir=(0.9238795325112861, 0.3826834323650914, 0)), keep=Keep.TOP, mode=Mode.PRIVATE)
    chamfer4_piece_21 = chamfer4_piece_21a & chamfer4_piece_21b
    add(chamfer4_piece_21, mode=Mode.SUBTRACT)
    with BuildSketch(Plane(origin=(-33.946826554, 207.829165102, 30), x_dir=(0.38253874623098433, -0.9235302292840456, 0.027495876610586674), z_dir=(-0.9238795325112873, -0.38268343236508856, 0))) as chamfer4_piece_22a_section:
        Polygon((CHAMFER4_SIZE * 0.999621916911, -CHAMFER4_SIZE * 0.0274958766106), (-CHAMFER4_SIZE * 0.0274958766106, -CHAMFER4_SIZE * 0.999621916911), (0, 0), align=None)
    chamfer4_piece_22a = extrude(amount=40.857524482, mode=Mode.PRIVATE)
    chamfer4_piece_22a = split(chamfer4_piece_22a, bisect_by=Plane(origin=(-67.941059421, 193.212843732, 29.50530956), z_dir=(-0.9238795325112861, -0.3826834323650914, 0)), keep=Keep.TOP, mode=Mode.PRIVATE)
    with BuildSketch(Plane(origin=(-66.654158548, 190.105990189, 30), x_dir=(-0.9235302292840445, -0.38253874623098727, 0.027495876610586726), z_dir=(-0.3826834323650914, 0.9238795325112861, 0))) as chamfer4_piece_22b_section:
        Polygon((CHAMFER4_SIZE * 0.999621916911, -CHAMFER4_SIZE * 0.0274958766106), (-CHAMFER4_SIZE * 0.0274958766106, -CHAMFER4_SIZE * 0.999621916911), (0, 0), align=None)
    chamfer4_piece_22b = extrude(amount=7.857524482, mode=Mode.PRIVATE)
    chamfer4_piece_22b = split(chamfer4_piece_22b, bisect_by=Plane(origin=(-68.587403629, 193.480568269, 29.50530956), z_dir=(0.38268343236508856, -0.9238795325112873, 0)), keep=Keep.TOP, mode=Mode.PRIVATE)
    chamfer4_piece_22 = chamfer4_piece_22a & chamfer4_piece_22b
    add(chamfer4_piece_22, mode=Mode.SUBTRACT)

    # Sketch13 → Cut-Extrude9 (cut)
    with BuildSketch(Plane(origin=(0, 0, 0), x_dir=(-1, 0, 0), z_dir=(0, 0, -1))):
        Polygon((153.073372946, 153.073372946), (216.478440058, 0), (308.555561475, 0), (180.789758921, 164.553875917), align=None)
    extrude(amount=-CUT_EXTRUDE9_DEPTH, mode=Mode.SUBTRACT)

    # Sketch14 → Boss-Extrude4 (add)
    with BuildSketch(Plane(origin=(31.702533556, 76.536686473, 0), x_dir=(0.9238795325112868, -0.38268343236508956, 0), z_dir=(-0.38268343236508956, -0.9238795325112868, 0))):
        with Locations((-227.025, 15)):
            Rectangle(SKETCH14_W, SKETCH14_H)
        with Locations((-202.975, 15)):
            Rectangle(SKETCH14_W, SKETCH14_H)
    extrude(amount=BOSS_EXTRUDE4_DEPTH)

    # Fillet2
    fillet2_edges = [cut_extrude6_kept_piece.edges().sort_by_distance(p)[0] for p in [
        (-176.034378888, 176.034378888, 15),
    ]]
    fillet(fillet2_edges, radius=FILLET2_R)

    # Chamfer5
    chamfer5_edges = [cut_extrude6_kept_piece.edges().sort_by_distance(p)[0] for p in [
        (-8.645728807, 217.926699182, 15),
        (-8.645728807, 224.13326401, 10),
        (-8.645728807, 230.339828839, 15),
        (-8.645728807, 224.13326401, 20),
        (-189.521720283, 135.69900673, 5.1),
        (-186.773178674, 134.560523519, 15),
        (-189.521720283, 135.69900673, 24.9),
        (-167.302417526, 126.495470182, 24.9),
        (-170.050959135, 127.633953393, 15),
        (-167.302417526, 126.495470182, 5.1),
    ]]
    chamfer(chamfer5_edges, length=CHAMFER5_SIZE)

    # Chamfer6
    chamfer6_edges = [cut_extrude6_kept_piece.edges().sort_by_distance(p)[0] for p in [
        (-70.650640615, 202.367477329, 30),
    ]]
    chamfer(chamfer6_edges, length=CHAMFER6_SIZE)

    # Sketch15 → Boss-Extrude5 (add)
    with BuildSketch(Plane.XY.offset(4.5)):
        Polygon((-85.775481798, 180.949072179), (-86.770458722, 183.351158963), (-82.15106106, 185.264576125), (-81.156084136, 182.86248934), align=None)
        Polygon((-68.292868072, 191.00482761), (-67.297891148, 188.602740826), (-71.91728881, 186.689323664), (-72.912265735, 189.091410449), align=None)
    extrude(amount=BOSS_EXTRUDE5_DEPTH)

    # Sketch16 → Boss-Extrude6 (add)
    with BuildSketch(Plane(origin=(-4.619397663, -1.913417162, 0), x_dir=(0, 0, -1), z_dir=(0.9238795325112874, 0.38268343236508845, 0))):
        with Locations((-27.7, 201.3)):
            Rectangle(SKETCH16_W, SKETCH16_H)
    extrude(amount=BOSS_EXTRUDE6_DEPTH)

    # Chamfer7
    chamfer7_edges = [cut_extrude6_kept_piece.edges().sort_by_distance(p)[0] for p in [
        (-70.597854182, 191.565420183, 30),
        (-85.689426346, 185.314286315, 30),
        (-77.531663397, 187.177993287, 30),
    ]]
    chamfer(chamfer7_edges, length=CHAMFER7_SIZE)

    # Fillet3
    fillet3_edges = [cut_extrude6_kept_piece.edges().sort_by_distance(p)[0] for p in [
        (-72.414777273, 187.890367056, 4.5),
        (-81.653572598, 184.063532733, 4.5),
        (-72.414777273, 187.890367056, 25.4),
        (-81.653572598, 184.063532733, 25.4),
    ]]
    fillet(fillet3_edges, radius=FILLET3_R - 0.0001)  # a hair under: the kernel refuses the full size


solid = cut_extrude6_kept_piece.part
